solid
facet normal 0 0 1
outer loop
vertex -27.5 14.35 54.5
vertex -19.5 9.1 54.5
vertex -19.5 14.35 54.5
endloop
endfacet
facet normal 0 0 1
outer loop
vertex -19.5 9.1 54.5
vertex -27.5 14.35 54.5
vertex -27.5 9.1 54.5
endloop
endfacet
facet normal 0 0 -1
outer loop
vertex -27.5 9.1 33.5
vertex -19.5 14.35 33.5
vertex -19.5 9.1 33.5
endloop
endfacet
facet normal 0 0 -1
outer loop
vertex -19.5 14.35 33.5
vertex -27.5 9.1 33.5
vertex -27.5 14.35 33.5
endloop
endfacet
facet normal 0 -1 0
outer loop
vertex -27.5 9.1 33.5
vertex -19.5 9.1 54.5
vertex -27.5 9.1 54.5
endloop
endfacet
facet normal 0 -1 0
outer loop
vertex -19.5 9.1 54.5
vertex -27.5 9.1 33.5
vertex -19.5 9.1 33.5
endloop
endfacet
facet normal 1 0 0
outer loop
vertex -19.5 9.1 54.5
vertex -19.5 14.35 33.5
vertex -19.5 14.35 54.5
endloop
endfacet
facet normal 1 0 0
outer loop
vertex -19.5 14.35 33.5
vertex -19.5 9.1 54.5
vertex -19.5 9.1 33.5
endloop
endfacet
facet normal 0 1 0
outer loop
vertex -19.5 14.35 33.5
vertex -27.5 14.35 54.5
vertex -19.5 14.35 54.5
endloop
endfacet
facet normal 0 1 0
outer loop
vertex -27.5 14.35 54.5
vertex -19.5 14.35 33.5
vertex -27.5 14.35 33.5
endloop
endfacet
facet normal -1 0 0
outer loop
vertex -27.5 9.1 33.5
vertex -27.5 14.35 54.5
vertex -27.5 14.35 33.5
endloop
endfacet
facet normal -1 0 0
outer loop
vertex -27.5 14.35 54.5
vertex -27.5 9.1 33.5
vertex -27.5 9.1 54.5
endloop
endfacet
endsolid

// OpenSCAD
// file: D:/Projects/assembly-workshop/outputs/Screen_Pi_Hue_SCR5-H_2026-10-30/checks/geometry.scad
// SCR5-G; mm; FRONT view: X right, Z up, Y into rack. Glass/plate front Y=0.
// Measured values: work/screen-5in/Dimensions.md. Physical fit/strength UNKNOWN.
part="plate";
DROP=0.45; // coupon winner can be substituted here; all three pins use this DROP
LIP=0.8; LIP_ON=true;
LIP_EDGES=[true,true,false,false]; // left,right,bottom,top; Brian: side lips only, cosmetic
FRAME_STEP=1.5; // measured glass-edge inset to metal LCD frame, left/right only
SHIM=0; // moves rear frame seat and plate-boss mating face back
$fn=48;
GCX=33; GCZ=41.5; PW=252; PH=88.8; PT=4;
GW=120.7; GH=77.2; CLEAR=0.2; WW=GW+2*CLEAR; WH=GH+2*CLEAR;
SEAT=13.3+SHIM; FT=3;
SO=[56.45,34]; BTN_X=[45.5,35.5,25.5];
PCB_TOP=38; GAP=0.10; LEAF_T=0.8;
HOLE=[3.4,40.3,44.7];
BX=[GCX-68,GCX+68]; BZ=[10,72];
// DSI connector X extent is unmeasured: conservative assumed 8 mm inward from PCB edge.
DSI=[GCX-60.5,9.1,GCZ-38+30,8,5.25,21];
module xz(y,d){translate([0,y+d,0])rotate([90,0,0])linear_extrude(d)children();}
// rr/rack_slots copied from SCR5-F; same exact slot centres, outline shifted -0.05 Z to centre 44.4.
module rr(w,h,r){hull()for(x=[-w/2+r,w/2-r],z=[-h/2+r,h/2-r])translate([x,z])circle(r=r);}
module rack_slots(){for(x=[-118.2625,118.2625],z=[6.323,38.127,50.773,82.577])translate([x,z])hull()for(dx=[-1.5,1.5])translate([dx,0])circle(d=7);}
module cyl_y(x,y,z,d,h){translate([x,y,z])rotate([-90,0,0])cylinder(d=d,h=h);}
module window_cut(){
  xz(-0.02,4.04)translate([GCX,GCZ])square([WW,WH],center=true);
  // 0.3 x 45-degree chamfer, square corners, front only.
  translate([GCX,0.3,GCZ])rotate([90,0,0])
    linear_extrude(height=0.3,scale=[(WW+0.6)/WW,(WH+0.6)/WH])square([WW,WH],center=true);
}
module lips(){
  // Cosmetic side ledges only; rear frame/standoffs set depth and retain the screen.
  if(LIP_ON)for(i=[0:3])if(LIP_EDGES[i]){
    if(i<2)translate([GCX+(i==0?-WW/2:WW/2-LIP),2.5,GCZ-GH/2+4])cube([LIP,0.8,GH-8]);
    else translate([GCX-GW/2+4,2.5,GCZ+(i==2?-WH/2:WH/2-LIP)])cube([GW-8,0.8,LIP]);
  }
}
// Leaf/nub/bump geometry copied from SCR5-WP-A, translated to this glass centre.
module leaves(){for(x=BTN_X)translate([GCX+x-1.5,0,GCZ]){
  translate([0,0,PCB_TOP+GAP+0.9+0.1])cube([3,11.8,LEAF_T]);
  translate([0,10.2,PCB_TOP+GAP])cube([3,1.4,1.0+LEAF_T/2]);
  translate([0,10.4,PCB_TOP+GAP+1.0+LEAF_T])cube([3,1.0,0.9]);
}}
module plate(){difference(){union(){
  difference(){xz(0,PT)translate([0,PH/2])rr(PW,PH,2.5);window_cut();}
  for(x=BX,z=BZ)cyl_y(x,3.9,z,8,SEAT-3.9);
  leaves(); lips();
 }
 xz(-0.02,4.04)rack_slots();
 for(x=BTN_X)translate([GCX+x-HOLE[0]/2,-0.02,GCZ+HOLE[1]])cube([HOLE[0],SEAT+FT+0.04,HOLE[2]-HOLE[1]]);
 // Printed-in screw pilots (no heat-set OD assumption): nominal M2.5, fit UNKNOWN.
 for(x=BX,z=BZ)cyl_y(x,SEAT-6,z,2.1,6.02);
 // Rear engraving, 0.5 deep, left field.
 xz(3.5,0.52)translate([-75,40])mirror([1,0])text("SCR5-G",size=6,halign="center",font="Liberation Sans:style=Bold");
}}
module frame_blank(){
  // C-shaped perimeter; no material across the board centre / touch FPC.
  xz(SEAT,FT)translate([GCX,GCZ])difference(){square([132,76],center=true);square([116,60],center=true);}
  for(sx=[-1,1],sz=[-1,1])cyl_y(GCX+sx*SO[0],SEAT,GCZ+sz*SO[1],9,FT);
  for(x=BX,z=BZ)hull(){cyl_y(x,SEAT,z,8,FT);cyl_y(GCX+(x<GCX?-62:62),SEAT,z,8,FT);}
}
module dsi_keepout(){translate([DSI[0]-3,DSI[1]-3,DSI[2]-3])cube([DSI[3]+6,DSI[4]+6,DSI[5]+6]);}
module ribbon_route(){
  // Open left/up corridor 18 mm wide; extends past top of plate.
  translate([GCX-84,6.1,GCZ-11])cube([18,24,65]);
  translate([GCX-84,6.1,GCZ-11])cube([32,24,27]);
}
module frame(){difference(){frame_blank();dsi_keepout();ribbon_route();
 for(sx=[-1,1],sz=[-1,1])cyl_y(GCX+sx*SO[0],SEAT-0.02,GCZ+sz*SO[1],2.8,FT+0.04);
 for(x=BX,z=BZ)cyl_y(x,SEAT-0.02,z,2.8,FT+0.04);
}}
// Pin polygon/cap/notch/dot design copied unchanged from SCR5-WP-A.
module pin(d,dots){s=2*d+0.5;difference(){union(){
 translate([-1.5,0,0])rotate([90,0,90])linear_extrude(3)polygon([
 [-s-0.02,40.5],[10.2,40.5],[10.2,41.0],[11.5,41.0],[11.5+2*d,41.0-d],[15,41.0-d],[15,44.5],[-s-0.02,44.5]]);
 translate([-2.5,-s-1.5,39.6])cube([5,1.5,5.8]);
 }for(i=[0:dots-1])translate([(i-(dots-1)/2)*1.4,-s-1.5-0.01,43.5])rotate([-90,0,0])cylinder(d=0.9,h=0.4);}}
module placed_pin(i){translate([GCX+BTN_X[i],0,GCZ])pin(DROP,i+1);}
// Measured layers: cover glass 0.9 + second glass 1.6, metal frame 3.0,
// open gap 2.0, PCB 1.6. Metal frame inset ~1.5 at LEFT/RIGHT only.
// PCB centred under glass and full metal-frame top/bottom extent remain UNKNOWN.
module glass(){translate([GCX-GW/2,0,GCZ-GH/2])cube([GW,2.5,GH]);}
module lcd(){
  translate([GCX-GW/2+FRAME_STEP,2.5,GCZ-GH/2])cube([GW-2*FRAME_STEP,3.0,GH]);
}
module pcb(){translate([GCX-60.5,7.5,GCZ-38])cube([121,1.6,76]);}
module standoffs(){for(sx=[-1,1],sz=[-1,1])difference(){cyl_y(GCX+sx*SO[0],9.1,GCZ+sz*SO[1],5.5,4.2);cyl_y(GCX+sx*SO[0],9.08,GCZ+sz*SO[1],2.5,4.24);}}
module buttons(){for(x=BTN_X){
 translate([GCX+x-3.5,9.1,GCZ+38-3.4])cube([7,3.6,2.4]);
 translate([GCX+x-1.5,9.1,GCZ+37])cube([3,3.6,1]);
}}
module dsi(){translate([DSI[0],DSI[1],DSI[2]])cube([DSI[3],DSI[4],DSI[5]]);}
module touch(){translate([GCX-10,9.1,GCZ-5])cube([20,2,10]);} // lateral extent unmeasured
module dummy(){glass();lcd();pcb();standoffs();buttons();dsi();touch();}
module assembly(){color("gray")plate();color("orange")frame();for(i=[0:2])color("cyan")placed_pin(i);color([0.2,0.3,0.4,0.4])dummy();}
// main file
include <D:/Projects/assembly-workshop/outputs/Screen_Pi_Hue_SCR5-H_2026-10-30/checks/geometry.scad>
dsi();
